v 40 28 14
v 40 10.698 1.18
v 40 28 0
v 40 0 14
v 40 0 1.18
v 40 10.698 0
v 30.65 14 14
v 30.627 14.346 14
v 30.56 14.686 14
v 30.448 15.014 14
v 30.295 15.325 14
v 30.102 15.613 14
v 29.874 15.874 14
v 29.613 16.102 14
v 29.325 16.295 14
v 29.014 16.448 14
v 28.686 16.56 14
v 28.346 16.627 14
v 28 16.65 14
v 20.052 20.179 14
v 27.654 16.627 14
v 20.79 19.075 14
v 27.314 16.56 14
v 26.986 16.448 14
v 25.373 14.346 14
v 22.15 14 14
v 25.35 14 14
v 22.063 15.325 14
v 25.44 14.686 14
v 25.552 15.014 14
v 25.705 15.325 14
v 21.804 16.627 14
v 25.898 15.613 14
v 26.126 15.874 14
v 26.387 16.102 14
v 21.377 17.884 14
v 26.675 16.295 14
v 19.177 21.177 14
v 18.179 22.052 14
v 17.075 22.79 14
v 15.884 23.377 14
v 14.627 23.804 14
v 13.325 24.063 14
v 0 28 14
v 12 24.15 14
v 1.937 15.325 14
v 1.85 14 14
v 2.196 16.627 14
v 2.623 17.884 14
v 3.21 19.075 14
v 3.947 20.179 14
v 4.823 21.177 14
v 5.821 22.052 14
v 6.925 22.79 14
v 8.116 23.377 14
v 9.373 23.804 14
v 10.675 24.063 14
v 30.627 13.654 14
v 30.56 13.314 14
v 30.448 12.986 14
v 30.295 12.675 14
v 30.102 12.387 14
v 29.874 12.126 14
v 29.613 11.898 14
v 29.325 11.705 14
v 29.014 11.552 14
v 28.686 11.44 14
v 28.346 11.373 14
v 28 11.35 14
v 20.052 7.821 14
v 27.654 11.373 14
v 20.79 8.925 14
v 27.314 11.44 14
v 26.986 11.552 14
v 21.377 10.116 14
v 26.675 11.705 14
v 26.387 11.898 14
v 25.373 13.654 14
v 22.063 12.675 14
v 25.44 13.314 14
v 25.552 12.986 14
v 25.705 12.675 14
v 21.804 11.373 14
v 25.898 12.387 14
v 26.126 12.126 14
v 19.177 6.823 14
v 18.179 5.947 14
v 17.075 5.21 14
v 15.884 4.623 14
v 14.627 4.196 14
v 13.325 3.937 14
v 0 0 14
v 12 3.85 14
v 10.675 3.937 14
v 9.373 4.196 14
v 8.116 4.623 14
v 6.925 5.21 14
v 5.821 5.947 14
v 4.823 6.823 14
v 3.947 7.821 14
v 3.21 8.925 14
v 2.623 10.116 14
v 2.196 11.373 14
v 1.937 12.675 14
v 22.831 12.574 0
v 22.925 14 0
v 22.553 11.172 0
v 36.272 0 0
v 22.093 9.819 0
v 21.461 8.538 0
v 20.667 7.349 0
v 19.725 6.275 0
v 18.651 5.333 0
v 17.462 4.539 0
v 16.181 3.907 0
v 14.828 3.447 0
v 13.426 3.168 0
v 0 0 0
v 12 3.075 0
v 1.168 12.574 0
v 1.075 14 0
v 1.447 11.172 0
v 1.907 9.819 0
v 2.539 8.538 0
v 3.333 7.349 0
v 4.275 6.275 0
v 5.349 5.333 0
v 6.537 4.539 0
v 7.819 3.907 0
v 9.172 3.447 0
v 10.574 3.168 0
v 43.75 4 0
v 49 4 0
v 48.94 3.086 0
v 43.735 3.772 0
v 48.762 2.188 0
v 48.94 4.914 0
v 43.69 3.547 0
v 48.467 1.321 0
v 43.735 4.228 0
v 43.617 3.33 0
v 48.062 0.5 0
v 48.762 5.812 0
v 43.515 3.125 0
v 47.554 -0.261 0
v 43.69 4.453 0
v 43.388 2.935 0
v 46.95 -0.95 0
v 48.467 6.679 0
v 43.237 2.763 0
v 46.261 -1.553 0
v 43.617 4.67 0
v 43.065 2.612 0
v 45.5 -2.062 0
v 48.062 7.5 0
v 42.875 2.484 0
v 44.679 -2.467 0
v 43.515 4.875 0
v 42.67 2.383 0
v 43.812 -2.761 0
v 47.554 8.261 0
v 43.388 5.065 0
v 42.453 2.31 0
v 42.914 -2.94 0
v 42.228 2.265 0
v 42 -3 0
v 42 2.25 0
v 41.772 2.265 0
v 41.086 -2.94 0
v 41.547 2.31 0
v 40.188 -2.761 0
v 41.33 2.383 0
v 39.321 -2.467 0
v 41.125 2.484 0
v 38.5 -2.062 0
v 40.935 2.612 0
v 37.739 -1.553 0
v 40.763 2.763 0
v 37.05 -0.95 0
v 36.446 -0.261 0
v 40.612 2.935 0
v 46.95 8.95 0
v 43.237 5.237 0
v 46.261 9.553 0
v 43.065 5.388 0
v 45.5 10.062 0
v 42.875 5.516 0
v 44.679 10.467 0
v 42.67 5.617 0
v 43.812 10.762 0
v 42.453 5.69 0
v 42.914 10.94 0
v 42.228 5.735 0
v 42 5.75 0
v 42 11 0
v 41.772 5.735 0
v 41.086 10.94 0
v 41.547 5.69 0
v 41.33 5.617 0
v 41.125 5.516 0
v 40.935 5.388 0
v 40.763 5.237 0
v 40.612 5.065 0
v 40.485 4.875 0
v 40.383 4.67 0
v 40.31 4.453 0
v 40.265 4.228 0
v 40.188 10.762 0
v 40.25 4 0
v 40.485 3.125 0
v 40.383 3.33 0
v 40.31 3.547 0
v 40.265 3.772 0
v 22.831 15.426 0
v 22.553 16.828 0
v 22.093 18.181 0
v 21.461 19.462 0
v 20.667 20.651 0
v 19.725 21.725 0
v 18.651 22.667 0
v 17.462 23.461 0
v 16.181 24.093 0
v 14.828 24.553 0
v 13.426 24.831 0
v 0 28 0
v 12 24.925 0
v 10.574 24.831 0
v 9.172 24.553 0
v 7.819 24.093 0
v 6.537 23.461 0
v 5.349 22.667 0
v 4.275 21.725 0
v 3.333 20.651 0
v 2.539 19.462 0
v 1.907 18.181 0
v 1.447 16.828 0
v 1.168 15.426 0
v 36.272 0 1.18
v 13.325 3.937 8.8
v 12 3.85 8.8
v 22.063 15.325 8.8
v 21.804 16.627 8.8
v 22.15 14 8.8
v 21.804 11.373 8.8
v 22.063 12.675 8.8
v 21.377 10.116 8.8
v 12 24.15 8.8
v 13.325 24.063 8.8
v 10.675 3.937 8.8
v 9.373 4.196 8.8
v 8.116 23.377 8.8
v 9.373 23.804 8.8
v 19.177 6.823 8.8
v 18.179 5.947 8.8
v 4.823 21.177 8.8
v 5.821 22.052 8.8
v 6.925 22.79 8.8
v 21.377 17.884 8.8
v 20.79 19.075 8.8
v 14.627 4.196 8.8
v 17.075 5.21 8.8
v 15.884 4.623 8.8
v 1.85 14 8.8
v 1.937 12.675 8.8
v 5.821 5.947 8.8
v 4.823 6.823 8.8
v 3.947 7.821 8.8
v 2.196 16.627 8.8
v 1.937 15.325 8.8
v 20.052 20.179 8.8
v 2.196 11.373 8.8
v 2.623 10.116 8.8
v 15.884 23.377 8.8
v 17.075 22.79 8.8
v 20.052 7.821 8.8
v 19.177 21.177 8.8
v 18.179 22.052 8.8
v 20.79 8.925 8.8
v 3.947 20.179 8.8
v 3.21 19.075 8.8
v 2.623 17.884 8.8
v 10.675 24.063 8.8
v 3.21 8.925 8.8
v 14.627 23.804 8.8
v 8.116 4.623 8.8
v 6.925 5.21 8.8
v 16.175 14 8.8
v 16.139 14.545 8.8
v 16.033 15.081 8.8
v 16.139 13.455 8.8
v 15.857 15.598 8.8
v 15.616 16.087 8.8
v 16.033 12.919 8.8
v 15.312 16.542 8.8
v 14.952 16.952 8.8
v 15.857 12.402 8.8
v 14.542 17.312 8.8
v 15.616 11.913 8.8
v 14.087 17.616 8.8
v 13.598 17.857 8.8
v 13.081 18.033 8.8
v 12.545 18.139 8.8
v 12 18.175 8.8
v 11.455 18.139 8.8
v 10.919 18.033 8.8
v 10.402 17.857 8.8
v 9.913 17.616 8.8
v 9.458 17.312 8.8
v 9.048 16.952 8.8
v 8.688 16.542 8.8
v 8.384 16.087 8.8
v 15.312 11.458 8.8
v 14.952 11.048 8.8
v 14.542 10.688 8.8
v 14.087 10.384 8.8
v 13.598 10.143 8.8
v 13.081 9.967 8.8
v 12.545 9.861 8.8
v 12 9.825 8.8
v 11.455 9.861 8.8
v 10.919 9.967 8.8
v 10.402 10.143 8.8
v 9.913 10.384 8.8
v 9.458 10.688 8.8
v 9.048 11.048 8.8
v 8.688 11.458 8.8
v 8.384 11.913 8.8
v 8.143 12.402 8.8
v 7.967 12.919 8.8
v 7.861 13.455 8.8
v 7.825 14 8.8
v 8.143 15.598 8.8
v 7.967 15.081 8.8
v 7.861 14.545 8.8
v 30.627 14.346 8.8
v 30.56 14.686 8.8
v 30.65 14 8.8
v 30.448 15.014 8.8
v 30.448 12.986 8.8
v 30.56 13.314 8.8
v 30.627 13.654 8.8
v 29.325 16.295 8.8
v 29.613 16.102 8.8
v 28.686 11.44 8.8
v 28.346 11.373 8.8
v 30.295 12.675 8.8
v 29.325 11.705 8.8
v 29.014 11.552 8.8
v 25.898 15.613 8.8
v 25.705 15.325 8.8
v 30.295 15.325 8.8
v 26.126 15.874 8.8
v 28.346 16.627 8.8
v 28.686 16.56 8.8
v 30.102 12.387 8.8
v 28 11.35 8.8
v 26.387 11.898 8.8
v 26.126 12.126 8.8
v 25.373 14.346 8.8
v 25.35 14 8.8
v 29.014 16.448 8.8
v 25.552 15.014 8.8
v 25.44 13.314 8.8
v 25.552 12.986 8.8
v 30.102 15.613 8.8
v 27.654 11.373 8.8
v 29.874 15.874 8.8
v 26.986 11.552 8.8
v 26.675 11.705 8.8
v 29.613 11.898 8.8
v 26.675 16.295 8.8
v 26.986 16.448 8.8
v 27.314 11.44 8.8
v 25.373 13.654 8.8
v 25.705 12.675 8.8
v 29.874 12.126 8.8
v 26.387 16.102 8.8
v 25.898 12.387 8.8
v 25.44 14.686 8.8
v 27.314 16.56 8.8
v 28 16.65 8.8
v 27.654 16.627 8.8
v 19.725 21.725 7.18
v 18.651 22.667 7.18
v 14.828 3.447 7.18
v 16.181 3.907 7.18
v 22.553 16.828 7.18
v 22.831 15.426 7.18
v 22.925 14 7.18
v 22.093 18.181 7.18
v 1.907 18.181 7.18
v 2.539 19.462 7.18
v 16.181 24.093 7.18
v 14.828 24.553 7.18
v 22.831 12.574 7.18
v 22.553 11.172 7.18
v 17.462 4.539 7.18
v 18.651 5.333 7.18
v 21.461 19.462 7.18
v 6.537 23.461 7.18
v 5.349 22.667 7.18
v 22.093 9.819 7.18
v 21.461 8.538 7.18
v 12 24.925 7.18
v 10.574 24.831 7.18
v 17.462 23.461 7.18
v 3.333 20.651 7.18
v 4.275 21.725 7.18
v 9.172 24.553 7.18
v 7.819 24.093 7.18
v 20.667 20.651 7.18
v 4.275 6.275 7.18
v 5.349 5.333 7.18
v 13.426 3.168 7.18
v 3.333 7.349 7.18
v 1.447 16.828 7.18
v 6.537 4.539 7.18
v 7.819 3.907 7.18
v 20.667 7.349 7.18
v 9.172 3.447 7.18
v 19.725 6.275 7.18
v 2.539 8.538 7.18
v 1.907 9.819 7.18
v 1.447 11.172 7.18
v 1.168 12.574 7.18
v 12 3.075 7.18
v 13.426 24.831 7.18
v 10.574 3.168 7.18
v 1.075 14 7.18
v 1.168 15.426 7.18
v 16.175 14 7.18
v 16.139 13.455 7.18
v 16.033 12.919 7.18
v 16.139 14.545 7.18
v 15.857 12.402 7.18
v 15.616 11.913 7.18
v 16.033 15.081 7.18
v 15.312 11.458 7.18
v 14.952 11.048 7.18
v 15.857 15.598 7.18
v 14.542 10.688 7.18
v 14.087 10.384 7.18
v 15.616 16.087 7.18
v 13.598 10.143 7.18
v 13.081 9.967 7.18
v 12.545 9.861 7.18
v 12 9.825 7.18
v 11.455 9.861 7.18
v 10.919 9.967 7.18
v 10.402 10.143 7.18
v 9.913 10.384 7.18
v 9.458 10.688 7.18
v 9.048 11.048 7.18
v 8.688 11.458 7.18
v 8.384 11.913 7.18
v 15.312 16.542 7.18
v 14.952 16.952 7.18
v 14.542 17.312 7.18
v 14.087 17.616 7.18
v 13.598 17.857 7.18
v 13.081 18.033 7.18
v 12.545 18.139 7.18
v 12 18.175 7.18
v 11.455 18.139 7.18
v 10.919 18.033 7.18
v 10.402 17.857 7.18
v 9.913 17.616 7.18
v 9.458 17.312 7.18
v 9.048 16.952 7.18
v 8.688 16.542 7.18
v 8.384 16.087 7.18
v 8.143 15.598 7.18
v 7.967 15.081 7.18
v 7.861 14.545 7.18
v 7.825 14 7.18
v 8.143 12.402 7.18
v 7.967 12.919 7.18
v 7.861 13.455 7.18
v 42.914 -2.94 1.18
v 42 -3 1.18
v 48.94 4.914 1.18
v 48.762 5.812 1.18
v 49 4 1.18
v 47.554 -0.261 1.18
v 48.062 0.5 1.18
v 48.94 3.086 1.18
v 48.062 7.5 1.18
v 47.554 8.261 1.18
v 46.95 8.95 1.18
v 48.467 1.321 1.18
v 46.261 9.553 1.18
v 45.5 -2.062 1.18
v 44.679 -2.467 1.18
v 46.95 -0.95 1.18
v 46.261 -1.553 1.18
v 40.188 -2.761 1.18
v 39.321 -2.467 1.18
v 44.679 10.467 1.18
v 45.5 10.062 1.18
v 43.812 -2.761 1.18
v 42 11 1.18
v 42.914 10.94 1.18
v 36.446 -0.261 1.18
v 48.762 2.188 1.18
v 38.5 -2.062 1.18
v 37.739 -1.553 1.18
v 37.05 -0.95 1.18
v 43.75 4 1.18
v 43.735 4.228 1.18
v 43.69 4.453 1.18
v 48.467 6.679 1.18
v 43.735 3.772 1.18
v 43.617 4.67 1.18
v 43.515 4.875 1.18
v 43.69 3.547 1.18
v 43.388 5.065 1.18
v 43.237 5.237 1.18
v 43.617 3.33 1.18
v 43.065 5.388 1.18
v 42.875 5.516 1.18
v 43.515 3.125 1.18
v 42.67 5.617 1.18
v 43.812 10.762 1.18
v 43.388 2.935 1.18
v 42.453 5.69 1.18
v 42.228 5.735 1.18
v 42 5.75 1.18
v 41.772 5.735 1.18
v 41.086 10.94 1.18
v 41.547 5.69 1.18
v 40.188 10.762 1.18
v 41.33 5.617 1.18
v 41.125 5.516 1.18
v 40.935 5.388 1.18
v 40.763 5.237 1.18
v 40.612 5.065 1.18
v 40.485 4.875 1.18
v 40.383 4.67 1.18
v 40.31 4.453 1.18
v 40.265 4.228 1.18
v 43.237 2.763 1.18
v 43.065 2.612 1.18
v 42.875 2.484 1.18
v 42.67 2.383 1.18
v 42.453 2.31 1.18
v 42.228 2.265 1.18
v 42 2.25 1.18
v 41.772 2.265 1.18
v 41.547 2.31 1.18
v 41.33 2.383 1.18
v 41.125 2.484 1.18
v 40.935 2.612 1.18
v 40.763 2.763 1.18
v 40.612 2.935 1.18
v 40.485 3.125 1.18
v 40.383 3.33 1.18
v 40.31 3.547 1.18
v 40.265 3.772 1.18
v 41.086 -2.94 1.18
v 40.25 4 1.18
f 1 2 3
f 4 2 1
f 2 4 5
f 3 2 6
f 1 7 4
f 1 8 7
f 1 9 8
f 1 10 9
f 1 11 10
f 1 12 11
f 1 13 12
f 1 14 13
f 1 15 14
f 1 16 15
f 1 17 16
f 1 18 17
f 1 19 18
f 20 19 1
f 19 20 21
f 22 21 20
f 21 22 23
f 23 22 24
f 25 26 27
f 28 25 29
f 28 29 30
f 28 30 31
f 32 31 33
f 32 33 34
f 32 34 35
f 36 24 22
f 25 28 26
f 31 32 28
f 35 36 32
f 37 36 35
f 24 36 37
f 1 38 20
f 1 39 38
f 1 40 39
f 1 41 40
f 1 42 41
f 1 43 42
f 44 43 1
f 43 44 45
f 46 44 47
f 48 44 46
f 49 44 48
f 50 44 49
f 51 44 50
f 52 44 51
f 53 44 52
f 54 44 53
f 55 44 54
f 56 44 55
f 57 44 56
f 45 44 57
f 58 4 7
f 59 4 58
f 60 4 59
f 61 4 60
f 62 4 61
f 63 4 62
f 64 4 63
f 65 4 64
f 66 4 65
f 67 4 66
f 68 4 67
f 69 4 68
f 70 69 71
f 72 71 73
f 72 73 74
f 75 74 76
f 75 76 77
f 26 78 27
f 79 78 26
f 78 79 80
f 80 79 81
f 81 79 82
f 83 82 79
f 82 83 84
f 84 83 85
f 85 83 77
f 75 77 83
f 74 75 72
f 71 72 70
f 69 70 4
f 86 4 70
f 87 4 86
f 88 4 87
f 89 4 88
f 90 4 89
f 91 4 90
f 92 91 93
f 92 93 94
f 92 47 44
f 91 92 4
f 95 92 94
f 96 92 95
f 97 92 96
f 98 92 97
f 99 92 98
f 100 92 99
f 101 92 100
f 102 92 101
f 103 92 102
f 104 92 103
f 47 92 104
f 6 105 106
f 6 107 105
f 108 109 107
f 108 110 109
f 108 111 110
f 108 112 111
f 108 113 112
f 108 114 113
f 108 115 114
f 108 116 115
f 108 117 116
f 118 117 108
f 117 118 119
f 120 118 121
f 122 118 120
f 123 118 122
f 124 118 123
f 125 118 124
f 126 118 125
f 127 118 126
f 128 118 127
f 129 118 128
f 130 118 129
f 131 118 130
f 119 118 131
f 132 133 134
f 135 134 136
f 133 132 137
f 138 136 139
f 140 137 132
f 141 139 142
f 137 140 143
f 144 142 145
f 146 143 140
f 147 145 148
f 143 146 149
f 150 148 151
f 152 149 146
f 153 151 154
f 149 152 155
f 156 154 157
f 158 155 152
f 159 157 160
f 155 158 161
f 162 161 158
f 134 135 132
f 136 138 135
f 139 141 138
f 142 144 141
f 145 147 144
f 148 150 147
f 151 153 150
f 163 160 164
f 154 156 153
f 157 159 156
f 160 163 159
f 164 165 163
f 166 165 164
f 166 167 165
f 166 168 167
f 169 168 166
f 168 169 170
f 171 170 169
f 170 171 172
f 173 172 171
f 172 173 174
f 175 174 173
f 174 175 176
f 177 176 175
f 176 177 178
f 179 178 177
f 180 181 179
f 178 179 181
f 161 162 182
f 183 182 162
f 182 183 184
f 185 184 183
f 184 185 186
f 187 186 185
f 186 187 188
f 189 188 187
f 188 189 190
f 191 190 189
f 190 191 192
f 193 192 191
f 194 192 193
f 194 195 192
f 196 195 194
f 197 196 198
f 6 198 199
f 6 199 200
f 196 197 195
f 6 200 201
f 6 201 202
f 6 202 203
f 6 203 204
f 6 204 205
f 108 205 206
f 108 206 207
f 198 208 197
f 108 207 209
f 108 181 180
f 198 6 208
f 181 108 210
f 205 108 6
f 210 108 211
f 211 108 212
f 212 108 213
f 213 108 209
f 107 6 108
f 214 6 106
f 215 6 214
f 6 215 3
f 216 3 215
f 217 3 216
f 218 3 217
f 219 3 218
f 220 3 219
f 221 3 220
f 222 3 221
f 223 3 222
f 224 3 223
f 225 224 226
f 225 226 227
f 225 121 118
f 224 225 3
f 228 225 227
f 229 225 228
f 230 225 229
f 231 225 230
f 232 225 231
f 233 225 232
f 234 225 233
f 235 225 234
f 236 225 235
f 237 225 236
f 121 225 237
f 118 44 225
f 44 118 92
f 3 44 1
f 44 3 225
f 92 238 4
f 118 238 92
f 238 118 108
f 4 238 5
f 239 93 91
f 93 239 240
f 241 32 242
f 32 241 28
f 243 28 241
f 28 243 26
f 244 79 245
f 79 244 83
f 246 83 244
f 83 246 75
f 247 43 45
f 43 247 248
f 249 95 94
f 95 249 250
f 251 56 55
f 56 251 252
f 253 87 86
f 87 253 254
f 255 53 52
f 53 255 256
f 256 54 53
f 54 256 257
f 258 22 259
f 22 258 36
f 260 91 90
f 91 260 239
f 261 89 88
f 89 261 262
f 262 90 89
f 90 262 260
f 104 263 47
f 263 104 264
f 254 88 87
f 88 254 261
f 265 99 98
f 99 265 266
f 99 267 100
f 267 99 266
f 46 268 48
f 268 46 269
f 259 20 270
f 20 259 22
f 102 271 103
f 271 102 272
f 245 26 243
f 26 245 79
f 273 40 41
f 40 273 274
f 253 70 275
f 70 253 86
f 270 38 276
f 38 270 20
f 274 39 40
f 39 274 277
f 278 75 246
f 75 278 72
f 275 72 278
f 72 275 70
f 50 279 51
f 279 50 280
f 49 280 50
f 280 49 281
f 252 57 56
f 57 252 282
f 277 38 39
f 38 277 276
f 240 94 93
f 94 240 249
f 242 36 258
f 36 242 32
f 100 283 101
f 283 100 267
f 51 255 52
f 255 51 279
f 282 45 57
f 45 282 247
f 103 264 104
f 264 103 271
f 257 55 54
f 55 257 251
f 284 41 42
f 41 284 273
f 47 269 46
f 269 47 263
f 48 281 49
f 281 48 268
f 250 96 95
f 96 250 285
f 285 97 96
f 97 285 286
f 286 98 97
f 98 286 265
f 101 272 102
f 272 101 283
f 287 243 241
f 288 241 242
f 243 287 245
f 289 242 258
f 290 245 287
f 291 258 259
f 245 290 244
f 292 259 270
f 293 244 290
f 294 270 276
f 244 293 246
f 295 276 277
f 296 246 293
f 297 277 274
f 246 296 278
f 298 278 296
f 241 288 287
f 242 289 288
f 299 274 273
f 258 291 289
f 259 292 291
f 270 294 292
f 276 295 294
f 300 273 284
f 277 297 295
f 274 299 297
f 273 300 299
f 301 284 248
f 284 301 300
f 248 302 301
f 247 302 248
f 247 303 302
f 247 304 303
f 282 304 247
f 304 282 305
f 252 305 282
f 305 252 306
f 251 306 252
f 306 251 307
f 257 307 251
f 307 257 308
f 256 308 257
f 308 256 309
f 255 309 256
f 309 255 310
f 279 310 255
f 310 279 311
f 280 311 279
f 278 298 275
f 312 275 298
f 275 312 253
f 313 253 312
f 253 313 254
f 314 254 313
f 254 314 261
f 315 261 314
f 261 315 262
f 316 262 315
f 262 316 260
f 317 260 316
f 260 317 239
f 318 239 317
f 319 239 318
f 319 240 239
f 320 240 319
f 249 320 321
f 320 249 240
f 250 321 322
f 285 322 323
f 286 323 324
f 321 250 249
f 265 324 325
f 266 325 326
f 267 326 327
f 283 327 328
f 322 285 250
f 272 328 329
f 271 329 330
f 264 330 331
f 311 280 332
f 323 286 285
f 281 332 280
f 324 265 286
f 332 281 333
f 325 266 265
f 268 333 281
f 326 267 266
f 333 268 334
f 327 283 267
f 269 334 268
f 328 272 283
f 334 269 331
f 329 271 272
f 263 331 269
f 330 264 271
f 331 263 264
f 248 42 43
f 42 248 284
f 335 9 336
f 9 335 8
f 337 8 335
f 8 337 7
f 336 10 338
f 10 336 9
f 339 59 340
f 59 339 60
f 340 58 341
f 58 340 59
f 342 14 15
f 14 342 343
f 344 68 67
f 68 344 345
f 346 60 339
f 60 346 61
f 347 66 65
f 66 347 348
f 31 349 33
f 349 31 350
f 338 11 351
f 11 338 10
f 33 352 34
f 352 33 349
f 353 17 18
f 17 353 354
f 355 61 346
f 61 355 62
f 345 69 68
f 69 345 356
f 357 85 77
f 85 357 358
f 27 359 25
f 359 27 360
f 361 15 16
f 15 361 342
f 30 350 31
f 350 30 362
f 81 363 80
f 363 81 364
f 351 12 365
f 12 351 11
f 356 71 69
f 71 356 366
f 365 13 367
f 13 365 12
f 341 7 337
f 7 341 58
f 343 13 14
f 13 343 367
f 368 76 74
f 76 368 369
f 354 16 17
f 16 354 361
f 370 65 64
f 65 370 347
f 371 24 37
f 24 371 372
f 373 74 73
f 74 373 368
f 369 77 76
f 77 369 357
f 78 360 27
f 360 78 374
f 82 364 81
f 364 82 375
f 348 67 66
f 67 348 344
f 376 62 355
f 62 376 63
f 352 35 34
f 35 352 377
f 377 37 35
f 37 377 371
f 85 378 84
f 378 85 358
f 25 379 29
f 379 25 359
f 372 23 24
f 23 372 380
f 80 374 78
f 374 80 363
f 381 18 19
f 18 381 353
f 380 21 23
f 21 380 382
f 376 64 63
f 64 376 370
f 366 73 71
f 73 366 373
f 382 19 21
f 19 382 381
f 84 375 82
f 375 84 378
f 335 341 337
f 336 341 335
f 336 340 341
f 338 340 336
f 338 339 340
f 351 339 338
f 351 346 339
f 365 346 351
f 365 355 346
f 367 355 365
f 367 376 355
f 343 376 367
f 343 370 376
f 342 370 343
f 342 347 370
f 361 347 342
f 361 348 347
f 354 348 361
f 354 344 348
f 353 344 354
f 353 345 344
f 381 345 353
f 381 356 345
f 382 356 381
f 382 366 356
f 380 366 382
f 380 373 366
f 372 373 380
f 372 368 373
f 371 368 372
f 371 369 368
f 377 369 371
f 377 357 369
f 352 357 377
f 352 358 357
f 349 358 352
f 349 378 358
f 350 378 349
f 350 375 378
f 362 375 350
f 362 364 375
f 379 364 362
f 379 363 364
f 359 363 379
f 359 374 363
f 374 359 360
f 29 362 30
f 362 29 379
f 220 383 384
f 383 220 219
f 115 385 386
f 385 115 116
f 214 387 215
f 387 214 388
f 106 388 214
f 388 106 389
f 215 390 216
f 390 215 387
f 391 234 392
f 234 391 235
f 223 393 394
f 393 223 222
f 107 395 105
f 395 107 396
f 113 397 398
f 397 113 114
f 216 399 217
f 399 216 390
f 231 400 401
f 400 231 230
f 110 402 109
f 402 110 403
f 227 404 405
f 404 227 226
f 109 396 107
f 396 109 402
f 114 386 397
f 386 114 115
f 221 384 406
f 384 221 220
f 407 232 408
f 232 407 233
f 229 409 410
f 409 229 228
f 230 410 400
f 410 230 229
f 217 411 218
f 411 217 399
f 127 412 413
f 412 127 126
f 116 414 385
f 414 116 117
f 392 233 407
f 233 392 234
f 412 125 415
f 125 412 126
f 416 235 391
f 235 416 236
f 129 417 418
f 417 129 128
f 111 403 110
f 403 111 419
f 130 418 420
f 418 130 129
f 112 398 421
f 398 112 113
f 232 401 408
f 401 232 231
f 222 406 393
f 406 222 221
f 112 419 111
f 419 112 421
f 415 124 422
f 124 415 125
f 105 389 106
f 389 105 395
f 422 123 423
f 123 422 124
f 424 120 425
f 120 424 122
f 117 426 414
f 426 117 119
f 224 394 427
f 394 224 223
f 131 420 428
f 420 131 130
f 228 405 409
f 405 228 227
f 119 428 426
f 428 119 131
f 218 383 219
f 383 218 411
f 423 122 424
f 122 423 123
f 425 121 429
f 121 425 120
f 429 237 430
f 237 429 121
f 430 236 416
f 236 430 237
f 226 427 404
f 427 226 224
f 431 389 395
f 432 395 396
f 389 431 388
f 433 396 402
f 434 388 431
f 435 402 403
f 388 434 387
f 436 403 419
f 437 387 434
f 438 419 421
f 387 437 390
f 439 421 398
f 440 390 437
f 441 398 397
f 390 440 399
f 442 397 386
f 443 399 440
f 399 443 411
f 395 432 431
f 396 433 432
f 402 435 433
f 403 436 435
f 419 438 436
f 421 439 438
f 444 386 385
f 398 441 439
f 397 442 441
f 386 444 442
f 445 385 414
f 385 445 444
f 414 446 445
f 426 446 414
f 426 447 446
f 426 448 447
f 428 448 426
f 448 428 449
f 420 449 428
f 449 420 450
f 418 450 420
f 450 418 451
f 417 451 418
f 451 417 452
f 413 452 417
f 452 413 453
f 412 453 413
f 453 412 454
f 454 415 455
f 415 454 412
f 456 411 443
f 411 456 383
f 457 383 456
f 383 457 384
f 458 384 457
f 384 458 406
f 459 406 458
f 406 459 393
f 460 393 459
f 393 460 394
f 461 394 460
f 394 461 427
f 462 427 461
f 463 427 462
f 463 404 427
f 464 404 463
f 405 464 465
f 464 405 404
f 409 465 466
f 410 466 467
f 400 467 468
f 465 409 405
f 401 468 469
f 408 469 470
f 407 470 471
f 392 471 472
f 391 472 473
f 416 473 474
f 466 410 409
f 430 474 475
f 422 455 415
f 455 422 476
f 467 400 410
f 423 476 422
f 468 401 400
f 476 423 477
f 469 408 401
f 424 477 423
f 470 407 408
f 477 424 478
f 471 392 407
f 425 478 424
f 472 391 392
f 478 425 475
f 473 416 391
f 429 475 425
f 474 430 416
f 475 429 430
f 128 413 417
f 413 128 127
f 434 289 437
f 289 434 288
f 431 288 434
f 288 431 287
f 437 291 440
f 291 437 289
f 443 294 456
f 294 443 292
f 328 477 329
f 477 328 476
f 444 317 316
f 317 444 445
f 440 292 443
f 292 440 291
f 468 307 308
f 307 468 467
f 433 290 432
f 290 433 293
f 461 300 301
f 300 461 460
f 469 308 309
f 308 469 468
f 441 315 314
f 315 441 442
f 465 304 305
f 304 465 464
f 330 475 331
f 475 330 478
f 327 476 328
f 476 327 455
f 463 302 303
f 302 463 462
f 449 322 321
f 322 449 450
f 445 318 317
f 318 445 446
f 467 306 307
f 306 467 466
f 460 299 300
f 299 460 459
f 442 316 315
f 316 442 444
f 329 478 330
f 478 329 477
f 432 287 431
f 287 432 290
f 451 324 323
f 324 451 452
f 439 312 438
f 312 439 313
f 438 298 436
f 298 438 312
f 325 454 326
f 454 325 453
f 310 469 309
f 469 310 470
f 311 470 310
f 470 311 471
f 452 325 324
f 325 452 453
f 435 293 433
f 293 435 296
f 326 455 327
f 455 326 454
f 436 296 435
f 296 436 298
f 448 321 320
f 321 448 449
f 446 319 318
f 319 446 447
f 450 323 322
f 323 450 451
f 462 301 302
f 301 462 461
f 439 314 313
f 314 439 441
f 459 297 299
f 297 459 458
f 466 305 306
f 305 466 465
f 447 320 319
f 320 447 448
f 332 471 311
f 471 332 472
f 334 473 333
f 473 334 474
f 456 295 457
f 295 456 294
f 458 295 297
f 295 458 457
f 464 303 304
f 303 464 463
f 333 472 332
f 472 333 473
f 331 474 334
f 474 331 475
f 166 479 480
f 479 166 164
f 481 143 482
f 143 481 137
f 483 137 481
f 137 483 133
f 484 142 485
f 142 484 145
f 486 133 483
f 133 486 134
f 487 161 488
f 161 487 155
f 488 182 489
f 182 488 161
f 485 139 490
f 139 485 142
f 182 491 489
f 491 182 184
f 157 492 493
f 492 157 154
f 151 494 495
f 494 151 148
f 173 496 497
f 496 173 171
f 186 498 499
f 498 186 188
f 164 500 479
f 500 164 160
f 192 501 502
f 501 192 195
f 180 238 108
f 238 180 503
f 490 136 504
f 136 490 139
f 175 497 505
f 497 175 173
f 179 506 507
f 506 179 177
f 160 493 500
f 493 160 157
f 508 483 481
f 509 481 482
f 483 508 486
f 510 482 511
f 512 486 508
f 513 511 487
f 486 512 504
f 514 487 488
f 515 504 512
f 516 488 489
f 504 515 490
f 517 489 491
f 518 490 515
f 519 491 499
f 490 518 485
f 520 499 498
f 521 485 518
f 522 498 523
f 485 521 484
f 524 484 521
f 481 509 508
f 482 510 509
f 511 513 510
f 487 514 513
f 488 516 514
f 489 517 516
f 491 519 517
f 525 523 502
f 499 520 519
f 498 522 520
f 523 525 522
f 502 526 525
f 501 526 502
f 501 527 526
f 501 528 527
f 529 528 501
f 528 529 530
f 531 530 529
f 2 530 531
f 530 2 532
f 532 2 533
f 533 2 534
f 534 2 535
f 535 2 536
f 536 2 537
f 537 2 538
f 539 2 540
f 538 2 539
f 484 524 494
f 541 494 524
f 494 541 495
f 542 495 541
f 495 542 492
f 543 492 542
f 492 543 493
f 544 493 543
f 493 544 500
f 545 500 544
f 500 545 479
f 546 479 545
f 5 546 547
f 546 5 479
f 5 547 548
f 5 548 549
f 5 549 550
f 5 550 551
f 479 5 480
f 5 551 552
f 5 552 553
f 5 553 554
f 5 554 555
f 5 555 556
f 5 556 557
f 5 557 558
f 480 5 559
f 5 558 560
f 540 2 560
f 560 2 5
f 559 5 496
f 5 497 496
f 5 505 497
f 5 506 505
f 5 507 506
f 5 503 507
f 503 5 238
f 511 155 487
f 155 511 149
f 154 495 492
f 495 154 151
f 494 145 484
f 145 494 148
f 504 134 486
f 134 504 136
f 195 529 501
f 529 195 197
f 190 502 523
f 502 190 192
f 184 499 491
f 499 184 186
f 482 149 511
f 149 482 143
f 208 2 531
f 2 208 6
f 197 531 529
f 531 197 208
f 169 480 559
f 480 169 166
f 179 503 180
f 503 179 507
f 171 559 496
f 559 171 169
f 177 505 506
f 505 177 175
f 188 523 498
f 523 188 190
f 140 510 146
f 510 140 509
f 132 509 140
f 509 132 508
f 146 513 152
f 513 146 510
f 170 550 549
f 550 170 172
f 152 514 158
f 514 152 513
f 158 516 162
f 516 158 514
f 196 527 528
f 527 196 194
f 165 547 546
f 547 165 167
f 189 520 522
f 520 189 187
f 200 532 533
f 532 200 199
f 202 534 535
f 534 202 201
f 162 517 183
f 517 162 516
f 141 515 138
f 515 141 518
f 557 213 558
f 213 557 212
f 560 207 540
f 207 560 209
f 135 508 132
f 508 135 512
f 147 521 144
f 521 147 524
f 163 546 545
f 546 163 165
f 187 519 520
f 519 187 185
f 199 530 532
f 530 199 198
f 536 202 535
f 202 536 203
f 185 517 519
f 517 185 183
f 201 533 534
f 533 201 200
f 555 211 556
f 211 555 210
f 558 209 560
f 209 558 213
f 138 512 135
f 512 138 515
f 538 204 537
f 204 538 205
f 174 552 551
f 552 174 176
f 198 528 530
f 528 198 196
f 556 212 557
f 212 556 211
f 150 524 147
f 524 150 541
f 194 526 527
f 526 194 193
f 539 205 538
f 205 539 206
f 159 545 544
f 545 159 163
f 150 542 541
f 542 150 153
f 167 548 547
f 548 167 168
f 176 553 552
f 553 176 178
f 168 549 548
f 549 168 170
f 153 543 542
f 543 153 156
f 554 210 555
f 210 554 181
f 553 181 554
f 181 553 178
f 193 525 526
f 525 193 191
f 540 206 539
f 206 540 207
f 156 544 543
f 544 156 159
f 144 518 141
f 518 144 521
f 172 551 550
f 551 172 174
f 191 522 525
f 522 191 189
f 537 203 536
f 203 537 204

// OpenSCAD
// file: parameters.scad
// =============================================================================
// Gen-AF Stacked dual-stator mid-rotor Halbach copper-max — WOUND-AWARE
// TWO wound pancake stators | ONE mid dual-face Halbach rotor | outer endbells
// Beats Gen-AF: thinner m2m 5.11, larger copper window, 135 t / coil
// =============================================================================

wire_awg            = 26;
wire_od             = 0.45;
turns               = 135;      // 9 coils/stator ×2 = 18 ×135 ×~0.118 ≈ 287 m
fill                = 0.70;
layers_per_face     = 2;
wind_build_axial    = layers_per_face * wire_od * fill;   // 0.63
wind_build_radial   = 2.8 * wire_od * fill;               // 0.882

coil_id_r           = 20.0;     // larger than Gen-AF 21–60
coil_od_r           = 62.0;
span_deg            = 34.0;     // 9 stations × 40°
former_web          = 1.55;
flange_t            = 0.60;
wall                = 1.2;
slot_w              = 2.4;
mount_hole          = 3.5;
tab_len             = 7.0;

former_bare_h       = former_web + 2 * flange_t;            // 2.75
coil_envelope_h     = former_bare_h + 2 * wind_build_axial; // 4.01

run_clear           = 0.55;
gap_spacer_h        = run_clear + wind_build_axial;         // 1.18
m2m                 = coil_envelope_h + 2 * run_clear;      // 5.11 per gap (beats Gen-AF 5.46)

coil_stations       = 9;        // per stator; ×2 = 18 total
bay_r_in            = coil_id_r - 2.0 - wind_build_radial;
bay_r_out           = coil_od_r + 2.0 + wind_build_radial;
bay_span            = span_deg + 4.0;
bay_offset          = 2.0;
bay_depth           = former_bare_h + wind_build_axial;
stator_back_web     = 2.0;
stator_thick        = bay_depth + stator_back_web;
stator_od           = 156.0;
shaft_clear_stator  = 40.0;
coil_mount_r        = 30.0;

large_pocket_d      = 20.3;
small_pocket_d      = 5.3;
pocket_h            = 5.2;
large_n             = 8;
R_large             = 52.0;
R_small_inner       = 40.0;
R_small_mid         = 52.0;
R_small_outer       = 64.0;
carrier_od          = 152.0;
mid_carrier_thick   = 12.0;
hub_h               = 10.0;
hub_od              = 30.0;
rotor_b_offset_deg  = 22.5;

shaft_bore          = 8.35;
bearing_d           = 21.85;
bearing_h           = 7.2;
m3_clear            = 3.5;
bolt_r_inner        = 36.0;
bolt_n_inner        = 6;
flange_bolt_r       = 72.0;
flange_bolt_n       = 6;
brace_r             = 68.0;
brace_d             = 4.3;
brace_n             = 4;

spacer_pad_od       = 14.0;
spacer_pad_id       = m3_clear;
endbell_od          = 156.0;
endbell_thick       = 8.0;
endbell_shaft_clear = 10.0;

$fn = 64;
// main file
// Gen-AF fit coupon — magnet pockets + 608 + spacer height
include <parameters.scad>;
$fn = 48;
block_w = 40; block_d = 28; block_h = 14;
difference() {
    cube([block_w, block_d, block_h]);
    translate([12, block_d/2, block_h - pocket_h])
        cylinder(d=large_pocket_d, h=pocket_h + 0.2);
    translate([28, block_d/2, block_h - pocket_h])
        cylinder(d=small_pocket_d, h=pocket_h + 0.2);
    translate([12, block_d/2, -0.02])
        cylinder(d=bearing_d, h=bearing_h);
    translate([12, block_d/2, -0.1])
        cylinder(d=shaft_bore, h=block_h + 1);
}
translate([block_w + 2, 4, 0])
    difference() {
        cylinder(d=spacer_pad_od, h=gap_spacer_h);
        translate([0, 0, -0.1]) cylinder(d=spacer_pad_id, h=gap_spacer_h + 0.2);
    }
